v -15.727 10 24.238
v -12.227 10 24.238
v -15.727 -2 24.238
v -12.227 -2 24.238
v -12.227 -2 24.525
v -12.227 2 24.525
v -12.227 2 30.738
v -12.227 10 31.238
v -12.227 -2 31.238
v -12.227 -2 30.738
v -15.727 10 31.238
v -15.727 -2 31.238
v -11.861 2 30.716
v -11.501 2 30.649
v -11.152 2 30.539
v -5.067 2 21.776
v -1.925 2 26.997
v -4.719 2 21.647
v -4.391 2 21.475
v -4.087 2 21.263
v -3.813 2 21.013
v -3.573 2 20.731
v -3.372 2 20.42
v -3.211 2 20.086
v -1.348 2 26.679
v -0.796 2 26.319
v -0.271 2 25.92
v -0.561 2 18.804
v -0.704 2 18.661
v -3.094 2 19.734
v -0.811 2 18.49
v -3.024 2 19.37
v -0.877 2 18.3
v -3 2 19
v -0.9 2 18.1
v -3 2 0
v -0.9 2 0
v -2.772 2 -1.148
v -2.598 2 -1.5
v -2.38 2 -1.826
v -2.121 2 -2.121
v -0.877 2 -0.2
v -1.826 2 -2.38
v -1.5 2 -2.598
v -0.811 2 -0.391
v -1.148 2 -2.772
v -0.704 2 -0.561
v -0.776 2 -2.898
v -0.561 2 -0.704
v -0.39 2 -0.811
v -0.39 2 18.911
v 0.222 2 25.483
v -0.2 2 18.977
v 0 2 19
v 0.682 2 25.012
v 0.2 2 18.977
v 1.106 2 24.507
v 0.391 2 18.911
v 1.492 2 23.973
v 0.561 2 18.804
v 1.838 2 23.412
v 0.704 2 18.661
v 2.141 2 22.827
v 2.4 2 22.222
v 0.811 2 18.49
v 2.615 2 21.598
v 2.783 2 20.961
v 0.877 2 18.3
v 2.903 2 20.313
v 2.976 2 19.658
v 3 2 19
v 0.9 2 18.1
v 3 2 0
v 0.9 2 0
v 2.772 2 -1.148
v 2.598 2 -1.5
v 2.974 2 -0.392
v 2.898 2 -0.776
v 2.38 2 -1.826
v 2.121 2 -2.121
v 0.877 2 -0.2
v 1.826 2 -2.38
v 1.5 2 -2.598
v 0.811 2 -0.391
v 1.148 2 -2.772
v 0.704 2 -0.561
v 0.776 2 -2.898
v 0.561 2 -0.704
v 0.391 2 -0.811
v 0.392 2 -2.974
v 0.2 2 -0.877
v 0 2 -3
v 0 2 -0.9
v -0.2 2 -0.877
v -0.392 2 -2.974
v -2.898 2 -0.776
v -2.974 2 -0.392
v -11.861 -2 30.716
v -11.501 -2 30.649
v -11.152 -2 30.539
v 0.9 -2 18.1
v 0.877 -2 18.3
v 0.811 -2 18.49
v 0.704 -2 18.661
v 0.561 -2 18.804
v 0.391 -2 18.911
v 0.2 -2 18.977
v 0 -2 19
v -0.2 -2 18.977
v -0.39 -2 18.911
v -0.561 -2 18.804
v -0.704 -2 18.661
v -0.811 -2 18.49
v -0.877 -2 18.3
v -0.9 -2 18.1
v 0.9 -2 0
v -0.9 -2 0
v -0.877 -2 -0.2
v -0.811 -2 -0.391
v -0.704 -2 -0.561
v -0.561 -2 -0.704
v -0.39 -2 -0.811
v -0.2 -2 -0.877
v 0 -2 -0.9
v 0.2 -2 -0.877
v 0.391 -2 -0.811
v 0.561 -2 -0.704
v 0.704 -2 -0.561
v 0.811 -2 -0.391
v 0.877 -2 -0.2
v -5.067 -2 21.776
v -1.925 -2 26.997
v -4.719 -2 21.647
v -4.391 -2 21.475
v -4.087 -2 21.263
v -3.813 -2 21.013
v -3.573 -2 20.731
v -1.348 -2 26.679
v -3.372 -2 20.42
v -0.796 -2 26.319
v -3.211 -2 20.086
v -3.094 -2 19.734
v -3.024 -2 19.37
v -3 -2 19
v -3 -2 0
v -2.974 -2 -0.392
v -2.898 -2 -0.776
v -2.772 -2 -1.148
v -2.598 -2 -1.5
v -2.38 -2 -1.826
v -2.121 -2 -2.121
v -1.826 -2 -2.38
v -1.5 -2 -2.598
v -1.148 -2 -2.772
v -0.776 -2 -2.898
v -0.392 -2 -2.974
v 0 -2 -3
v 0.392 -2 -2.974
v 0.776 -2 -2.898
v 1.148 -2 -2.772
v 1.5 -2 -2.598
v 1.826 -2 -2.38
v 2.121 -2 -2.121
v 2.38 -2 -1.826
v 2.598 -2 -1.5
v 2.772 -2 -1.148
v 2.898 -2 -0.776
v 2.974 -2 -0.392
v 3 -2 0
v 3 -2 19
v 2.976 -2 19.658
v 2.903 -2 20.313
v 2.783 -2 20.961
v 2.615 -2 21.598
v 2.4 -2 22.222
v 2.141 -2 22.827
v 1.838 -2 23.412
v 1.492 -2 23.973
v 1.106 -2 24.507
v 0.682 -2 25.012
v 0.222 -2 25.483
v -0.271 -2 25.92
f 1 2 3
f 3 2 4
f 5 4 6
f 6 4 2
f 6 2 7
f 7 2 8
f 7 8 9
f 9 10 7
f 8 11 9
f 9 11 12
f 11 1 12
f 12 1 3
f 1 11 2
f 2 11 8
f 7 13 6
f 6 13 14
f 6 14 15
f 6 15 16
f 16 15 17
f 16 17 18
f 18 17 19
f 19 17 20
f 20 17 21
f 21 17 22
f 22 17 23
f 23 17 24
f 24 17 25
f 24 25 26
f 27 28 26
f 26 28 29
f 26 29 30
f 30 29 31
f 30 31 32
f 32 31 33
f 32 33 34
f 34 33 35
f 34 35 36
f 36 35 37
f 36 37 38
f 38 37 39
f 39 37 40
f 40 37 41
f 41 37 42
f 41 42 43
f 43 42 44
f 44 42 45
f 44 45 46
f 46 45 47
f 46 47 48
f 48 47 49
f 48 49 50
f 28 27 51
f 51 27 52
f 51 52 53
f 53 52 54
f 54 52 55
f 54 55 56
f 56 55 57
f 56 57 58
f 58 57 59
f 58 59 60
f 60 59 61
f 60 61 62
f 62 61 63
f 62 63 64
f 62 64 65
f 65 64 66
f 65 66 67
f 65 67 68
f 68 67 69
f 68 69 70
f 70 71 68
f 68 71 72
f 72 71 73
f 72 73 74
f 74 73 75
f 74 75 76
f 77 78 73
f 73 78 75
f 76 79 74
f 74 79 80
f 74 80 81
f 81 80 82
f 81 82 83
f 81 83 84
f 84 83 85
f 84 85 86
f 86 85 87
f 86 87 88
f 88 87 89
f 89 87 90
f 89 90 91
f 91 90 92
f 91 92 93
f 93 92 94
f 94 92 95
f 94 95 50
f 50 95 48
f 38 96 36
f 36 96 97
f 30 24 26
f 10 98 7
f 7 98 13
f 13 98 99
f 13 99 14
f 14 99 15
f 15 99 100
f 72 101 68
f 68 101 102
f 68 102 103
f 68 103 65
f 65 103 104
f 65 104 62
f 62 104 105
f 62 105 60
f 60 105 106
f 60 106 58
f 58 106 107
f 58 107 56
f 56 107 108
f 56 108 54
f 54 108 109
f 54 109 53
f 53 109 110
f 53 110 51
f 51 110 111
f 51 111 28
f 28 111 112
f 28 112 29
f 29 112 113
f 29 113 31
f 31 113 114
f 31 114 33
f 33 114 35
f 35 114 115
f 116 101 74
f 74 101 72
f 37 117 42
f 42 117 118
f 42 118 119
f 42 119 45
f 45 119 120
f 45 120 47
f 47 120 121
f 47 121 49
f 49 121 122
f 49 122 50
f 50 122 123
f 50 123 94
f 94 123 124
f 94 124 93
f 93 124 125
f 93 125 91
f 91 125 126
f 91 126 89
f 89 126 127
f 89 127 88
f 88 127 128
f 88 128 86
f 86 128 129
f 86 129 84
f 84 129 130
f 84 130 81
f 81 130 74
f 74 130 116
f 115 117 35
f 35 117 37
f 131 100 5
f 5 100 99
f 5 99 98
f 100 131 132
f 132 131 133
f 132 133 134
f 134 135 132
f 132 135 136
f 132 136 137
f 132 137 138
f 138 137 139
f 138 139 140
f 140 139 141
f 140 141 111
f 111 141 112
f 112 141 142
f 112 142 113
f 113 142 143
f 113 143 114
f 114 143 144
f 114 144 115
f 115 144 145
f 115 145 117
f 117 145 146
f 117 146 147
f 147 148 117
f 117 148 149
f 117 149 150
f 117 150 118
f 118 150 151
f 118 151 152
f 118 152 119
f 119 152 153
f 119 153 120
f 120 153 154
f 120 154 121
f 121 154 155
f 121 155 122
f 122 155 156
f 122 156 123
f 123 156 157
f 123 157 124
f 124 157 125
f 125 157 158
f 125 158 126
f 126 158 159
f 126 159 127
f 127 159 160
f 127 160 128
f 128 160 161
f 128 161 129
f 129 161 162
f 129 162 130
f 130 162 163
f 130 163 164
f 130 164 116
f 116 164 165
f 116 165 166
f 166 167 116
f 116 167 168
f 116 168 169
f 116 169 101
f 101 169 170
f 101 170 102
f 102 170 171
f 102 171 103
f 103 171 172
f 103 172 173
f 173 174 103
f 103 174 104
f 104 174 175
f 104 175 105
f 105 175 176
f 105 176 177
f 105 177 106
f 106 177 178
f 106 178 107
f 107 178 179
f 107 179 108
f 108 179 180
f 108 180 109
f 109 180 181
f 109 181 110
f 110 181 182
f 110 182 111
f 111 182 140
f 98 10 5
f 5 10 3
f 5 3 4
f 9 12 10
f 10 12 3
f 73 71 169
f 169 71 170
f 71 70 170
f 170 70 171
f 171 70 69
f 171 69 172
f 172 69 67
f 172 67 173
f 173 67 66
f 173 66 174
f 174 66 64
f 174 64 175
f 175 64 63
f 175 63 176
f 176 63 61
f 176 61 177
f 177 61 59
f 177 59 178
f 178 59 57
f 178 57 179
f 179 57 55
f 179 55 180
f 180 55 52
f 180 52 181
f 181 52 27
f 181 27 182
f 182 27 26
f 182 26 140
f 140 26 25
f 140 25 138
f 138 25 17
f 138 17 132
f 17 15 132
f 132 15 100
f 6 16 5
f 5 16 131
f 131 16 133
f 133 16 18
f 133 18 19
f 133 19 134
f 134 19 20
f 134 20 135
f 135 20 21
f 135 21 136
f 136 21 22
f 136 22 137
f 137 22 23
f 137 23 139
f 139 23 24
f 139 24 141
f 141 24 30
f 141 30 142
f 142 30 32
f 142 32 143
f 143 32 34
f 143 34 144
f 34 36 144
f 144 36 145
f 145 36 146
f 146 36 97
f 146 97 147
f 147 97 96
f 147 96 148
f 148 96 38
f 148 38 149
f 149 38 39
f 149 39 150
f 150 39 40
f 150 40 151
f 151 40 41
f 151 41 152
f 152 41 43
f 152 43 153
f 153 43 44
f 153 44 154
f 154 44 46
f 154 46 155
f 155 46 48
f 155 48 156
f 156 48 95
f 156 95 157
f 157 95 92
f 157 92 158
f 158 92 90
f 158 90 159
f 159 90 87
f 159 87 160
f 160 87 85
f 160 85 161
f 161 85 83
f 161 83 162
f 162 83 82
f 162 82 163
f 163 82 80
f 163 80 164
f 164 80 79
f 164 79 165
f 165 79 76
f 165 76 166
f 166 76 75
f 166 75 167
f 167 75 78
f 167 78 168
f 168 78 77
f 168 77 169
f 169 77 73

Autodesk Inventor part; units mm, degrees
ref_plane "YZ Plane" through (0, 0, 0) normal (1, 0, 0) x (0, 1, 0)
ref_plane "XZ Plane" through (0, 0, 0) normal (0, 1, 0) x (-1, 0, 0)
ref_plane "XY Plane" through (0, 0, 0) normal (0, 0, 1) x (1, 0, 0)
sketch "Sketch1" plane through (0, 0, 0) normal (0, 1, 0) x (-1, 0, 0)
  line L0 (0, 0) -> (0, 19) construction
  line L1 (-3, 0) -> (-3, 19)
  line L2 (3, 19) -> (3, 0)
  arc A0 (-3, 0) -> (3, 0) centre (0, 0) ccw
  arc A1 (3, 19) -> (-3, 19) centre (0, 19) ccw construction
  line L3 (0, 19) -> (3, 24.1962) construction
  line L4 (2.5981, 17.5) -> (5.5981, 22.6962) construction
  line L5 (0.4019, 25.6962) -> (-2.5981, 20.5) construction
  arc A2 (-2.5981, 20.5) -> (2.5981, 17.5) centre (0, 19) ccw construction
  arc A3 (5.5981, 22.6962) -> (0.4019, 25.6962) centre (3, 24.1962) ccw construction
  line L6 (3, 24.1962) -> (12.2269, 27.738) construction
  line L7 (2.8111, 20.9102) -> (13.302, 24.9373) construction
  line L8 (11.1518, 30.5388) -> (1.9249, 26.9969) construction
  arc A4 (1.9249, 26.9969) -> (1.5, 21.5981) centre (3, 24.1962) ccw construction
  arc A5 (13.302, 24.9373) -> (11.1518, 30.5388) centre (12.2269, 27.738) ccw
  line L9 (12.2269, 27.738) -> (21.2256, 27.8951) construction
  arc A6 (5.0669, 21.7761) -> (3, 19) centre (5.8978, 19) ccw
  line L10 (5.0669, 21.7761) -> (13.302, 24.9373)
  line L11 (1.9249, 26.9969) -> (11.1518, 30.5388)
  arc A7 (1.9249, 26.9969) -> (-3, 19) centre (5.955, 19) ccw
  point P0 (0, 9.5)
  point P1 (1.5, 21.5981)
  point P2 (-2.5981, 20.5)
  point P3 (3, 18.1962)
  point P4 (7.6135, 25.9671)
  point P5 (1.9249, 26.9969)
  point P6 (16.7262, 27.8166)
  dimension "d0" = 6
  dimension "d5" = 25
  dimension "d6" = 150
  dimension "d7" = 6
  dimension "d8" = 12
  dimension "d9" = 12
  dimension "d10" = 111
  dimension "d11" = 200
  dimension "d13" = 9
extrude "Extrusion1" add sketch "Sketch1" along normal mid plane 4
sketch "Sketch2" plane through (0, 2, 0) normal (0, 1, 0) x (1, 0, 0)
  line L0 (0, 0) -> (0, -18.1) construction
  line L1 (-0.9, 0) -> (-0.9, -18.1)
  line L2 (0.9, -18.1) -> (0.9, 0)
  arc A0 (0.9, 0) -> (-0.9, 0) centre (0, 0) ccw
  arc A1 (-0.9, -18.1) -> (0.9, -18.1) centre (0, -18.1) ccw
  point P0 (0, -9.05)
  point P1 (-3, -19)
  point P2 (0, -19)
  dimension "d14" = 1.8
extrude "Extrusion2" cut sketch "Sketch2" against normal through all
sketch "Sketch3" plane through (0, 0, 0) normal (0, 1, 0) x (-1, 0, 0)
  line L0 (-0.9, 0) -> (-0.9, 18.1) projected
  arc A0 (0.9, 18.1) -> (-0.9, 18.1) centre (0, 18.1) ccw projected
  line L1 (0.9, 18.1) -> (0.9, 0) projected
  arc A1 (-0.9, 0) -> (0.9, 0) centre (0, 0) ccw projected
  arc A2 (-3, 0) -> (3, 0) centre (0, 0) ccw projected
  line L2 (3, 0) -> (3, 19) projected
  arc A3 (5.0669, 21.7761) -> (3, 19) centre (5.8978, 19) ccw projected
  line L3 (5.0669, 21.7761) -> (13.302, 24.9373) projected
  arc A4 (13.302, 24.9373) -> (11.1518, 30.5388) centre (12.2269, 27.738) ccw projected
  line L4 (11.1518, 30.5388) -> (1.9249, 26.9969) projected
  arc A5 (1.9249, 26.9969) -> (-3, 19) centre (5.955, 19) ccw projected
  line L5 (-3, 19) -> (-3, 0) projected
  line L6 (15.7269, 24.238) -> (12.2269, 24.238)
  line L7 (12.2269, 24.238) -> (12.2269, 31.238)
  line L8 (12.2269, 31.238) -> (15.7269, 31.238)
  line L9 (15.7269, 31.238) -> (15.7269, 24.238)
  line L10 (13.9769, 24.238) -> (13.9769, 31.238) construction
  line L11 (12.2269, 27.738) -> (15.7269, 27.738) construction
  dimension "d17" = 7
  dimension "d18" = 3.5
extrude "Extrusion3" add sketch "Sketch3" along normal blind 10 and the other way blind 2 contours L7 A4 L3 | L3 A4 L7 L8 L9 L6
sketch "Sketch5" plane through (0, 2, 0) normal (0, 1, 0) x (1, 0, 0)
  point P0 (0, 0)
equation "\"d7\" = d0"
properties part number "_3DPrint"
